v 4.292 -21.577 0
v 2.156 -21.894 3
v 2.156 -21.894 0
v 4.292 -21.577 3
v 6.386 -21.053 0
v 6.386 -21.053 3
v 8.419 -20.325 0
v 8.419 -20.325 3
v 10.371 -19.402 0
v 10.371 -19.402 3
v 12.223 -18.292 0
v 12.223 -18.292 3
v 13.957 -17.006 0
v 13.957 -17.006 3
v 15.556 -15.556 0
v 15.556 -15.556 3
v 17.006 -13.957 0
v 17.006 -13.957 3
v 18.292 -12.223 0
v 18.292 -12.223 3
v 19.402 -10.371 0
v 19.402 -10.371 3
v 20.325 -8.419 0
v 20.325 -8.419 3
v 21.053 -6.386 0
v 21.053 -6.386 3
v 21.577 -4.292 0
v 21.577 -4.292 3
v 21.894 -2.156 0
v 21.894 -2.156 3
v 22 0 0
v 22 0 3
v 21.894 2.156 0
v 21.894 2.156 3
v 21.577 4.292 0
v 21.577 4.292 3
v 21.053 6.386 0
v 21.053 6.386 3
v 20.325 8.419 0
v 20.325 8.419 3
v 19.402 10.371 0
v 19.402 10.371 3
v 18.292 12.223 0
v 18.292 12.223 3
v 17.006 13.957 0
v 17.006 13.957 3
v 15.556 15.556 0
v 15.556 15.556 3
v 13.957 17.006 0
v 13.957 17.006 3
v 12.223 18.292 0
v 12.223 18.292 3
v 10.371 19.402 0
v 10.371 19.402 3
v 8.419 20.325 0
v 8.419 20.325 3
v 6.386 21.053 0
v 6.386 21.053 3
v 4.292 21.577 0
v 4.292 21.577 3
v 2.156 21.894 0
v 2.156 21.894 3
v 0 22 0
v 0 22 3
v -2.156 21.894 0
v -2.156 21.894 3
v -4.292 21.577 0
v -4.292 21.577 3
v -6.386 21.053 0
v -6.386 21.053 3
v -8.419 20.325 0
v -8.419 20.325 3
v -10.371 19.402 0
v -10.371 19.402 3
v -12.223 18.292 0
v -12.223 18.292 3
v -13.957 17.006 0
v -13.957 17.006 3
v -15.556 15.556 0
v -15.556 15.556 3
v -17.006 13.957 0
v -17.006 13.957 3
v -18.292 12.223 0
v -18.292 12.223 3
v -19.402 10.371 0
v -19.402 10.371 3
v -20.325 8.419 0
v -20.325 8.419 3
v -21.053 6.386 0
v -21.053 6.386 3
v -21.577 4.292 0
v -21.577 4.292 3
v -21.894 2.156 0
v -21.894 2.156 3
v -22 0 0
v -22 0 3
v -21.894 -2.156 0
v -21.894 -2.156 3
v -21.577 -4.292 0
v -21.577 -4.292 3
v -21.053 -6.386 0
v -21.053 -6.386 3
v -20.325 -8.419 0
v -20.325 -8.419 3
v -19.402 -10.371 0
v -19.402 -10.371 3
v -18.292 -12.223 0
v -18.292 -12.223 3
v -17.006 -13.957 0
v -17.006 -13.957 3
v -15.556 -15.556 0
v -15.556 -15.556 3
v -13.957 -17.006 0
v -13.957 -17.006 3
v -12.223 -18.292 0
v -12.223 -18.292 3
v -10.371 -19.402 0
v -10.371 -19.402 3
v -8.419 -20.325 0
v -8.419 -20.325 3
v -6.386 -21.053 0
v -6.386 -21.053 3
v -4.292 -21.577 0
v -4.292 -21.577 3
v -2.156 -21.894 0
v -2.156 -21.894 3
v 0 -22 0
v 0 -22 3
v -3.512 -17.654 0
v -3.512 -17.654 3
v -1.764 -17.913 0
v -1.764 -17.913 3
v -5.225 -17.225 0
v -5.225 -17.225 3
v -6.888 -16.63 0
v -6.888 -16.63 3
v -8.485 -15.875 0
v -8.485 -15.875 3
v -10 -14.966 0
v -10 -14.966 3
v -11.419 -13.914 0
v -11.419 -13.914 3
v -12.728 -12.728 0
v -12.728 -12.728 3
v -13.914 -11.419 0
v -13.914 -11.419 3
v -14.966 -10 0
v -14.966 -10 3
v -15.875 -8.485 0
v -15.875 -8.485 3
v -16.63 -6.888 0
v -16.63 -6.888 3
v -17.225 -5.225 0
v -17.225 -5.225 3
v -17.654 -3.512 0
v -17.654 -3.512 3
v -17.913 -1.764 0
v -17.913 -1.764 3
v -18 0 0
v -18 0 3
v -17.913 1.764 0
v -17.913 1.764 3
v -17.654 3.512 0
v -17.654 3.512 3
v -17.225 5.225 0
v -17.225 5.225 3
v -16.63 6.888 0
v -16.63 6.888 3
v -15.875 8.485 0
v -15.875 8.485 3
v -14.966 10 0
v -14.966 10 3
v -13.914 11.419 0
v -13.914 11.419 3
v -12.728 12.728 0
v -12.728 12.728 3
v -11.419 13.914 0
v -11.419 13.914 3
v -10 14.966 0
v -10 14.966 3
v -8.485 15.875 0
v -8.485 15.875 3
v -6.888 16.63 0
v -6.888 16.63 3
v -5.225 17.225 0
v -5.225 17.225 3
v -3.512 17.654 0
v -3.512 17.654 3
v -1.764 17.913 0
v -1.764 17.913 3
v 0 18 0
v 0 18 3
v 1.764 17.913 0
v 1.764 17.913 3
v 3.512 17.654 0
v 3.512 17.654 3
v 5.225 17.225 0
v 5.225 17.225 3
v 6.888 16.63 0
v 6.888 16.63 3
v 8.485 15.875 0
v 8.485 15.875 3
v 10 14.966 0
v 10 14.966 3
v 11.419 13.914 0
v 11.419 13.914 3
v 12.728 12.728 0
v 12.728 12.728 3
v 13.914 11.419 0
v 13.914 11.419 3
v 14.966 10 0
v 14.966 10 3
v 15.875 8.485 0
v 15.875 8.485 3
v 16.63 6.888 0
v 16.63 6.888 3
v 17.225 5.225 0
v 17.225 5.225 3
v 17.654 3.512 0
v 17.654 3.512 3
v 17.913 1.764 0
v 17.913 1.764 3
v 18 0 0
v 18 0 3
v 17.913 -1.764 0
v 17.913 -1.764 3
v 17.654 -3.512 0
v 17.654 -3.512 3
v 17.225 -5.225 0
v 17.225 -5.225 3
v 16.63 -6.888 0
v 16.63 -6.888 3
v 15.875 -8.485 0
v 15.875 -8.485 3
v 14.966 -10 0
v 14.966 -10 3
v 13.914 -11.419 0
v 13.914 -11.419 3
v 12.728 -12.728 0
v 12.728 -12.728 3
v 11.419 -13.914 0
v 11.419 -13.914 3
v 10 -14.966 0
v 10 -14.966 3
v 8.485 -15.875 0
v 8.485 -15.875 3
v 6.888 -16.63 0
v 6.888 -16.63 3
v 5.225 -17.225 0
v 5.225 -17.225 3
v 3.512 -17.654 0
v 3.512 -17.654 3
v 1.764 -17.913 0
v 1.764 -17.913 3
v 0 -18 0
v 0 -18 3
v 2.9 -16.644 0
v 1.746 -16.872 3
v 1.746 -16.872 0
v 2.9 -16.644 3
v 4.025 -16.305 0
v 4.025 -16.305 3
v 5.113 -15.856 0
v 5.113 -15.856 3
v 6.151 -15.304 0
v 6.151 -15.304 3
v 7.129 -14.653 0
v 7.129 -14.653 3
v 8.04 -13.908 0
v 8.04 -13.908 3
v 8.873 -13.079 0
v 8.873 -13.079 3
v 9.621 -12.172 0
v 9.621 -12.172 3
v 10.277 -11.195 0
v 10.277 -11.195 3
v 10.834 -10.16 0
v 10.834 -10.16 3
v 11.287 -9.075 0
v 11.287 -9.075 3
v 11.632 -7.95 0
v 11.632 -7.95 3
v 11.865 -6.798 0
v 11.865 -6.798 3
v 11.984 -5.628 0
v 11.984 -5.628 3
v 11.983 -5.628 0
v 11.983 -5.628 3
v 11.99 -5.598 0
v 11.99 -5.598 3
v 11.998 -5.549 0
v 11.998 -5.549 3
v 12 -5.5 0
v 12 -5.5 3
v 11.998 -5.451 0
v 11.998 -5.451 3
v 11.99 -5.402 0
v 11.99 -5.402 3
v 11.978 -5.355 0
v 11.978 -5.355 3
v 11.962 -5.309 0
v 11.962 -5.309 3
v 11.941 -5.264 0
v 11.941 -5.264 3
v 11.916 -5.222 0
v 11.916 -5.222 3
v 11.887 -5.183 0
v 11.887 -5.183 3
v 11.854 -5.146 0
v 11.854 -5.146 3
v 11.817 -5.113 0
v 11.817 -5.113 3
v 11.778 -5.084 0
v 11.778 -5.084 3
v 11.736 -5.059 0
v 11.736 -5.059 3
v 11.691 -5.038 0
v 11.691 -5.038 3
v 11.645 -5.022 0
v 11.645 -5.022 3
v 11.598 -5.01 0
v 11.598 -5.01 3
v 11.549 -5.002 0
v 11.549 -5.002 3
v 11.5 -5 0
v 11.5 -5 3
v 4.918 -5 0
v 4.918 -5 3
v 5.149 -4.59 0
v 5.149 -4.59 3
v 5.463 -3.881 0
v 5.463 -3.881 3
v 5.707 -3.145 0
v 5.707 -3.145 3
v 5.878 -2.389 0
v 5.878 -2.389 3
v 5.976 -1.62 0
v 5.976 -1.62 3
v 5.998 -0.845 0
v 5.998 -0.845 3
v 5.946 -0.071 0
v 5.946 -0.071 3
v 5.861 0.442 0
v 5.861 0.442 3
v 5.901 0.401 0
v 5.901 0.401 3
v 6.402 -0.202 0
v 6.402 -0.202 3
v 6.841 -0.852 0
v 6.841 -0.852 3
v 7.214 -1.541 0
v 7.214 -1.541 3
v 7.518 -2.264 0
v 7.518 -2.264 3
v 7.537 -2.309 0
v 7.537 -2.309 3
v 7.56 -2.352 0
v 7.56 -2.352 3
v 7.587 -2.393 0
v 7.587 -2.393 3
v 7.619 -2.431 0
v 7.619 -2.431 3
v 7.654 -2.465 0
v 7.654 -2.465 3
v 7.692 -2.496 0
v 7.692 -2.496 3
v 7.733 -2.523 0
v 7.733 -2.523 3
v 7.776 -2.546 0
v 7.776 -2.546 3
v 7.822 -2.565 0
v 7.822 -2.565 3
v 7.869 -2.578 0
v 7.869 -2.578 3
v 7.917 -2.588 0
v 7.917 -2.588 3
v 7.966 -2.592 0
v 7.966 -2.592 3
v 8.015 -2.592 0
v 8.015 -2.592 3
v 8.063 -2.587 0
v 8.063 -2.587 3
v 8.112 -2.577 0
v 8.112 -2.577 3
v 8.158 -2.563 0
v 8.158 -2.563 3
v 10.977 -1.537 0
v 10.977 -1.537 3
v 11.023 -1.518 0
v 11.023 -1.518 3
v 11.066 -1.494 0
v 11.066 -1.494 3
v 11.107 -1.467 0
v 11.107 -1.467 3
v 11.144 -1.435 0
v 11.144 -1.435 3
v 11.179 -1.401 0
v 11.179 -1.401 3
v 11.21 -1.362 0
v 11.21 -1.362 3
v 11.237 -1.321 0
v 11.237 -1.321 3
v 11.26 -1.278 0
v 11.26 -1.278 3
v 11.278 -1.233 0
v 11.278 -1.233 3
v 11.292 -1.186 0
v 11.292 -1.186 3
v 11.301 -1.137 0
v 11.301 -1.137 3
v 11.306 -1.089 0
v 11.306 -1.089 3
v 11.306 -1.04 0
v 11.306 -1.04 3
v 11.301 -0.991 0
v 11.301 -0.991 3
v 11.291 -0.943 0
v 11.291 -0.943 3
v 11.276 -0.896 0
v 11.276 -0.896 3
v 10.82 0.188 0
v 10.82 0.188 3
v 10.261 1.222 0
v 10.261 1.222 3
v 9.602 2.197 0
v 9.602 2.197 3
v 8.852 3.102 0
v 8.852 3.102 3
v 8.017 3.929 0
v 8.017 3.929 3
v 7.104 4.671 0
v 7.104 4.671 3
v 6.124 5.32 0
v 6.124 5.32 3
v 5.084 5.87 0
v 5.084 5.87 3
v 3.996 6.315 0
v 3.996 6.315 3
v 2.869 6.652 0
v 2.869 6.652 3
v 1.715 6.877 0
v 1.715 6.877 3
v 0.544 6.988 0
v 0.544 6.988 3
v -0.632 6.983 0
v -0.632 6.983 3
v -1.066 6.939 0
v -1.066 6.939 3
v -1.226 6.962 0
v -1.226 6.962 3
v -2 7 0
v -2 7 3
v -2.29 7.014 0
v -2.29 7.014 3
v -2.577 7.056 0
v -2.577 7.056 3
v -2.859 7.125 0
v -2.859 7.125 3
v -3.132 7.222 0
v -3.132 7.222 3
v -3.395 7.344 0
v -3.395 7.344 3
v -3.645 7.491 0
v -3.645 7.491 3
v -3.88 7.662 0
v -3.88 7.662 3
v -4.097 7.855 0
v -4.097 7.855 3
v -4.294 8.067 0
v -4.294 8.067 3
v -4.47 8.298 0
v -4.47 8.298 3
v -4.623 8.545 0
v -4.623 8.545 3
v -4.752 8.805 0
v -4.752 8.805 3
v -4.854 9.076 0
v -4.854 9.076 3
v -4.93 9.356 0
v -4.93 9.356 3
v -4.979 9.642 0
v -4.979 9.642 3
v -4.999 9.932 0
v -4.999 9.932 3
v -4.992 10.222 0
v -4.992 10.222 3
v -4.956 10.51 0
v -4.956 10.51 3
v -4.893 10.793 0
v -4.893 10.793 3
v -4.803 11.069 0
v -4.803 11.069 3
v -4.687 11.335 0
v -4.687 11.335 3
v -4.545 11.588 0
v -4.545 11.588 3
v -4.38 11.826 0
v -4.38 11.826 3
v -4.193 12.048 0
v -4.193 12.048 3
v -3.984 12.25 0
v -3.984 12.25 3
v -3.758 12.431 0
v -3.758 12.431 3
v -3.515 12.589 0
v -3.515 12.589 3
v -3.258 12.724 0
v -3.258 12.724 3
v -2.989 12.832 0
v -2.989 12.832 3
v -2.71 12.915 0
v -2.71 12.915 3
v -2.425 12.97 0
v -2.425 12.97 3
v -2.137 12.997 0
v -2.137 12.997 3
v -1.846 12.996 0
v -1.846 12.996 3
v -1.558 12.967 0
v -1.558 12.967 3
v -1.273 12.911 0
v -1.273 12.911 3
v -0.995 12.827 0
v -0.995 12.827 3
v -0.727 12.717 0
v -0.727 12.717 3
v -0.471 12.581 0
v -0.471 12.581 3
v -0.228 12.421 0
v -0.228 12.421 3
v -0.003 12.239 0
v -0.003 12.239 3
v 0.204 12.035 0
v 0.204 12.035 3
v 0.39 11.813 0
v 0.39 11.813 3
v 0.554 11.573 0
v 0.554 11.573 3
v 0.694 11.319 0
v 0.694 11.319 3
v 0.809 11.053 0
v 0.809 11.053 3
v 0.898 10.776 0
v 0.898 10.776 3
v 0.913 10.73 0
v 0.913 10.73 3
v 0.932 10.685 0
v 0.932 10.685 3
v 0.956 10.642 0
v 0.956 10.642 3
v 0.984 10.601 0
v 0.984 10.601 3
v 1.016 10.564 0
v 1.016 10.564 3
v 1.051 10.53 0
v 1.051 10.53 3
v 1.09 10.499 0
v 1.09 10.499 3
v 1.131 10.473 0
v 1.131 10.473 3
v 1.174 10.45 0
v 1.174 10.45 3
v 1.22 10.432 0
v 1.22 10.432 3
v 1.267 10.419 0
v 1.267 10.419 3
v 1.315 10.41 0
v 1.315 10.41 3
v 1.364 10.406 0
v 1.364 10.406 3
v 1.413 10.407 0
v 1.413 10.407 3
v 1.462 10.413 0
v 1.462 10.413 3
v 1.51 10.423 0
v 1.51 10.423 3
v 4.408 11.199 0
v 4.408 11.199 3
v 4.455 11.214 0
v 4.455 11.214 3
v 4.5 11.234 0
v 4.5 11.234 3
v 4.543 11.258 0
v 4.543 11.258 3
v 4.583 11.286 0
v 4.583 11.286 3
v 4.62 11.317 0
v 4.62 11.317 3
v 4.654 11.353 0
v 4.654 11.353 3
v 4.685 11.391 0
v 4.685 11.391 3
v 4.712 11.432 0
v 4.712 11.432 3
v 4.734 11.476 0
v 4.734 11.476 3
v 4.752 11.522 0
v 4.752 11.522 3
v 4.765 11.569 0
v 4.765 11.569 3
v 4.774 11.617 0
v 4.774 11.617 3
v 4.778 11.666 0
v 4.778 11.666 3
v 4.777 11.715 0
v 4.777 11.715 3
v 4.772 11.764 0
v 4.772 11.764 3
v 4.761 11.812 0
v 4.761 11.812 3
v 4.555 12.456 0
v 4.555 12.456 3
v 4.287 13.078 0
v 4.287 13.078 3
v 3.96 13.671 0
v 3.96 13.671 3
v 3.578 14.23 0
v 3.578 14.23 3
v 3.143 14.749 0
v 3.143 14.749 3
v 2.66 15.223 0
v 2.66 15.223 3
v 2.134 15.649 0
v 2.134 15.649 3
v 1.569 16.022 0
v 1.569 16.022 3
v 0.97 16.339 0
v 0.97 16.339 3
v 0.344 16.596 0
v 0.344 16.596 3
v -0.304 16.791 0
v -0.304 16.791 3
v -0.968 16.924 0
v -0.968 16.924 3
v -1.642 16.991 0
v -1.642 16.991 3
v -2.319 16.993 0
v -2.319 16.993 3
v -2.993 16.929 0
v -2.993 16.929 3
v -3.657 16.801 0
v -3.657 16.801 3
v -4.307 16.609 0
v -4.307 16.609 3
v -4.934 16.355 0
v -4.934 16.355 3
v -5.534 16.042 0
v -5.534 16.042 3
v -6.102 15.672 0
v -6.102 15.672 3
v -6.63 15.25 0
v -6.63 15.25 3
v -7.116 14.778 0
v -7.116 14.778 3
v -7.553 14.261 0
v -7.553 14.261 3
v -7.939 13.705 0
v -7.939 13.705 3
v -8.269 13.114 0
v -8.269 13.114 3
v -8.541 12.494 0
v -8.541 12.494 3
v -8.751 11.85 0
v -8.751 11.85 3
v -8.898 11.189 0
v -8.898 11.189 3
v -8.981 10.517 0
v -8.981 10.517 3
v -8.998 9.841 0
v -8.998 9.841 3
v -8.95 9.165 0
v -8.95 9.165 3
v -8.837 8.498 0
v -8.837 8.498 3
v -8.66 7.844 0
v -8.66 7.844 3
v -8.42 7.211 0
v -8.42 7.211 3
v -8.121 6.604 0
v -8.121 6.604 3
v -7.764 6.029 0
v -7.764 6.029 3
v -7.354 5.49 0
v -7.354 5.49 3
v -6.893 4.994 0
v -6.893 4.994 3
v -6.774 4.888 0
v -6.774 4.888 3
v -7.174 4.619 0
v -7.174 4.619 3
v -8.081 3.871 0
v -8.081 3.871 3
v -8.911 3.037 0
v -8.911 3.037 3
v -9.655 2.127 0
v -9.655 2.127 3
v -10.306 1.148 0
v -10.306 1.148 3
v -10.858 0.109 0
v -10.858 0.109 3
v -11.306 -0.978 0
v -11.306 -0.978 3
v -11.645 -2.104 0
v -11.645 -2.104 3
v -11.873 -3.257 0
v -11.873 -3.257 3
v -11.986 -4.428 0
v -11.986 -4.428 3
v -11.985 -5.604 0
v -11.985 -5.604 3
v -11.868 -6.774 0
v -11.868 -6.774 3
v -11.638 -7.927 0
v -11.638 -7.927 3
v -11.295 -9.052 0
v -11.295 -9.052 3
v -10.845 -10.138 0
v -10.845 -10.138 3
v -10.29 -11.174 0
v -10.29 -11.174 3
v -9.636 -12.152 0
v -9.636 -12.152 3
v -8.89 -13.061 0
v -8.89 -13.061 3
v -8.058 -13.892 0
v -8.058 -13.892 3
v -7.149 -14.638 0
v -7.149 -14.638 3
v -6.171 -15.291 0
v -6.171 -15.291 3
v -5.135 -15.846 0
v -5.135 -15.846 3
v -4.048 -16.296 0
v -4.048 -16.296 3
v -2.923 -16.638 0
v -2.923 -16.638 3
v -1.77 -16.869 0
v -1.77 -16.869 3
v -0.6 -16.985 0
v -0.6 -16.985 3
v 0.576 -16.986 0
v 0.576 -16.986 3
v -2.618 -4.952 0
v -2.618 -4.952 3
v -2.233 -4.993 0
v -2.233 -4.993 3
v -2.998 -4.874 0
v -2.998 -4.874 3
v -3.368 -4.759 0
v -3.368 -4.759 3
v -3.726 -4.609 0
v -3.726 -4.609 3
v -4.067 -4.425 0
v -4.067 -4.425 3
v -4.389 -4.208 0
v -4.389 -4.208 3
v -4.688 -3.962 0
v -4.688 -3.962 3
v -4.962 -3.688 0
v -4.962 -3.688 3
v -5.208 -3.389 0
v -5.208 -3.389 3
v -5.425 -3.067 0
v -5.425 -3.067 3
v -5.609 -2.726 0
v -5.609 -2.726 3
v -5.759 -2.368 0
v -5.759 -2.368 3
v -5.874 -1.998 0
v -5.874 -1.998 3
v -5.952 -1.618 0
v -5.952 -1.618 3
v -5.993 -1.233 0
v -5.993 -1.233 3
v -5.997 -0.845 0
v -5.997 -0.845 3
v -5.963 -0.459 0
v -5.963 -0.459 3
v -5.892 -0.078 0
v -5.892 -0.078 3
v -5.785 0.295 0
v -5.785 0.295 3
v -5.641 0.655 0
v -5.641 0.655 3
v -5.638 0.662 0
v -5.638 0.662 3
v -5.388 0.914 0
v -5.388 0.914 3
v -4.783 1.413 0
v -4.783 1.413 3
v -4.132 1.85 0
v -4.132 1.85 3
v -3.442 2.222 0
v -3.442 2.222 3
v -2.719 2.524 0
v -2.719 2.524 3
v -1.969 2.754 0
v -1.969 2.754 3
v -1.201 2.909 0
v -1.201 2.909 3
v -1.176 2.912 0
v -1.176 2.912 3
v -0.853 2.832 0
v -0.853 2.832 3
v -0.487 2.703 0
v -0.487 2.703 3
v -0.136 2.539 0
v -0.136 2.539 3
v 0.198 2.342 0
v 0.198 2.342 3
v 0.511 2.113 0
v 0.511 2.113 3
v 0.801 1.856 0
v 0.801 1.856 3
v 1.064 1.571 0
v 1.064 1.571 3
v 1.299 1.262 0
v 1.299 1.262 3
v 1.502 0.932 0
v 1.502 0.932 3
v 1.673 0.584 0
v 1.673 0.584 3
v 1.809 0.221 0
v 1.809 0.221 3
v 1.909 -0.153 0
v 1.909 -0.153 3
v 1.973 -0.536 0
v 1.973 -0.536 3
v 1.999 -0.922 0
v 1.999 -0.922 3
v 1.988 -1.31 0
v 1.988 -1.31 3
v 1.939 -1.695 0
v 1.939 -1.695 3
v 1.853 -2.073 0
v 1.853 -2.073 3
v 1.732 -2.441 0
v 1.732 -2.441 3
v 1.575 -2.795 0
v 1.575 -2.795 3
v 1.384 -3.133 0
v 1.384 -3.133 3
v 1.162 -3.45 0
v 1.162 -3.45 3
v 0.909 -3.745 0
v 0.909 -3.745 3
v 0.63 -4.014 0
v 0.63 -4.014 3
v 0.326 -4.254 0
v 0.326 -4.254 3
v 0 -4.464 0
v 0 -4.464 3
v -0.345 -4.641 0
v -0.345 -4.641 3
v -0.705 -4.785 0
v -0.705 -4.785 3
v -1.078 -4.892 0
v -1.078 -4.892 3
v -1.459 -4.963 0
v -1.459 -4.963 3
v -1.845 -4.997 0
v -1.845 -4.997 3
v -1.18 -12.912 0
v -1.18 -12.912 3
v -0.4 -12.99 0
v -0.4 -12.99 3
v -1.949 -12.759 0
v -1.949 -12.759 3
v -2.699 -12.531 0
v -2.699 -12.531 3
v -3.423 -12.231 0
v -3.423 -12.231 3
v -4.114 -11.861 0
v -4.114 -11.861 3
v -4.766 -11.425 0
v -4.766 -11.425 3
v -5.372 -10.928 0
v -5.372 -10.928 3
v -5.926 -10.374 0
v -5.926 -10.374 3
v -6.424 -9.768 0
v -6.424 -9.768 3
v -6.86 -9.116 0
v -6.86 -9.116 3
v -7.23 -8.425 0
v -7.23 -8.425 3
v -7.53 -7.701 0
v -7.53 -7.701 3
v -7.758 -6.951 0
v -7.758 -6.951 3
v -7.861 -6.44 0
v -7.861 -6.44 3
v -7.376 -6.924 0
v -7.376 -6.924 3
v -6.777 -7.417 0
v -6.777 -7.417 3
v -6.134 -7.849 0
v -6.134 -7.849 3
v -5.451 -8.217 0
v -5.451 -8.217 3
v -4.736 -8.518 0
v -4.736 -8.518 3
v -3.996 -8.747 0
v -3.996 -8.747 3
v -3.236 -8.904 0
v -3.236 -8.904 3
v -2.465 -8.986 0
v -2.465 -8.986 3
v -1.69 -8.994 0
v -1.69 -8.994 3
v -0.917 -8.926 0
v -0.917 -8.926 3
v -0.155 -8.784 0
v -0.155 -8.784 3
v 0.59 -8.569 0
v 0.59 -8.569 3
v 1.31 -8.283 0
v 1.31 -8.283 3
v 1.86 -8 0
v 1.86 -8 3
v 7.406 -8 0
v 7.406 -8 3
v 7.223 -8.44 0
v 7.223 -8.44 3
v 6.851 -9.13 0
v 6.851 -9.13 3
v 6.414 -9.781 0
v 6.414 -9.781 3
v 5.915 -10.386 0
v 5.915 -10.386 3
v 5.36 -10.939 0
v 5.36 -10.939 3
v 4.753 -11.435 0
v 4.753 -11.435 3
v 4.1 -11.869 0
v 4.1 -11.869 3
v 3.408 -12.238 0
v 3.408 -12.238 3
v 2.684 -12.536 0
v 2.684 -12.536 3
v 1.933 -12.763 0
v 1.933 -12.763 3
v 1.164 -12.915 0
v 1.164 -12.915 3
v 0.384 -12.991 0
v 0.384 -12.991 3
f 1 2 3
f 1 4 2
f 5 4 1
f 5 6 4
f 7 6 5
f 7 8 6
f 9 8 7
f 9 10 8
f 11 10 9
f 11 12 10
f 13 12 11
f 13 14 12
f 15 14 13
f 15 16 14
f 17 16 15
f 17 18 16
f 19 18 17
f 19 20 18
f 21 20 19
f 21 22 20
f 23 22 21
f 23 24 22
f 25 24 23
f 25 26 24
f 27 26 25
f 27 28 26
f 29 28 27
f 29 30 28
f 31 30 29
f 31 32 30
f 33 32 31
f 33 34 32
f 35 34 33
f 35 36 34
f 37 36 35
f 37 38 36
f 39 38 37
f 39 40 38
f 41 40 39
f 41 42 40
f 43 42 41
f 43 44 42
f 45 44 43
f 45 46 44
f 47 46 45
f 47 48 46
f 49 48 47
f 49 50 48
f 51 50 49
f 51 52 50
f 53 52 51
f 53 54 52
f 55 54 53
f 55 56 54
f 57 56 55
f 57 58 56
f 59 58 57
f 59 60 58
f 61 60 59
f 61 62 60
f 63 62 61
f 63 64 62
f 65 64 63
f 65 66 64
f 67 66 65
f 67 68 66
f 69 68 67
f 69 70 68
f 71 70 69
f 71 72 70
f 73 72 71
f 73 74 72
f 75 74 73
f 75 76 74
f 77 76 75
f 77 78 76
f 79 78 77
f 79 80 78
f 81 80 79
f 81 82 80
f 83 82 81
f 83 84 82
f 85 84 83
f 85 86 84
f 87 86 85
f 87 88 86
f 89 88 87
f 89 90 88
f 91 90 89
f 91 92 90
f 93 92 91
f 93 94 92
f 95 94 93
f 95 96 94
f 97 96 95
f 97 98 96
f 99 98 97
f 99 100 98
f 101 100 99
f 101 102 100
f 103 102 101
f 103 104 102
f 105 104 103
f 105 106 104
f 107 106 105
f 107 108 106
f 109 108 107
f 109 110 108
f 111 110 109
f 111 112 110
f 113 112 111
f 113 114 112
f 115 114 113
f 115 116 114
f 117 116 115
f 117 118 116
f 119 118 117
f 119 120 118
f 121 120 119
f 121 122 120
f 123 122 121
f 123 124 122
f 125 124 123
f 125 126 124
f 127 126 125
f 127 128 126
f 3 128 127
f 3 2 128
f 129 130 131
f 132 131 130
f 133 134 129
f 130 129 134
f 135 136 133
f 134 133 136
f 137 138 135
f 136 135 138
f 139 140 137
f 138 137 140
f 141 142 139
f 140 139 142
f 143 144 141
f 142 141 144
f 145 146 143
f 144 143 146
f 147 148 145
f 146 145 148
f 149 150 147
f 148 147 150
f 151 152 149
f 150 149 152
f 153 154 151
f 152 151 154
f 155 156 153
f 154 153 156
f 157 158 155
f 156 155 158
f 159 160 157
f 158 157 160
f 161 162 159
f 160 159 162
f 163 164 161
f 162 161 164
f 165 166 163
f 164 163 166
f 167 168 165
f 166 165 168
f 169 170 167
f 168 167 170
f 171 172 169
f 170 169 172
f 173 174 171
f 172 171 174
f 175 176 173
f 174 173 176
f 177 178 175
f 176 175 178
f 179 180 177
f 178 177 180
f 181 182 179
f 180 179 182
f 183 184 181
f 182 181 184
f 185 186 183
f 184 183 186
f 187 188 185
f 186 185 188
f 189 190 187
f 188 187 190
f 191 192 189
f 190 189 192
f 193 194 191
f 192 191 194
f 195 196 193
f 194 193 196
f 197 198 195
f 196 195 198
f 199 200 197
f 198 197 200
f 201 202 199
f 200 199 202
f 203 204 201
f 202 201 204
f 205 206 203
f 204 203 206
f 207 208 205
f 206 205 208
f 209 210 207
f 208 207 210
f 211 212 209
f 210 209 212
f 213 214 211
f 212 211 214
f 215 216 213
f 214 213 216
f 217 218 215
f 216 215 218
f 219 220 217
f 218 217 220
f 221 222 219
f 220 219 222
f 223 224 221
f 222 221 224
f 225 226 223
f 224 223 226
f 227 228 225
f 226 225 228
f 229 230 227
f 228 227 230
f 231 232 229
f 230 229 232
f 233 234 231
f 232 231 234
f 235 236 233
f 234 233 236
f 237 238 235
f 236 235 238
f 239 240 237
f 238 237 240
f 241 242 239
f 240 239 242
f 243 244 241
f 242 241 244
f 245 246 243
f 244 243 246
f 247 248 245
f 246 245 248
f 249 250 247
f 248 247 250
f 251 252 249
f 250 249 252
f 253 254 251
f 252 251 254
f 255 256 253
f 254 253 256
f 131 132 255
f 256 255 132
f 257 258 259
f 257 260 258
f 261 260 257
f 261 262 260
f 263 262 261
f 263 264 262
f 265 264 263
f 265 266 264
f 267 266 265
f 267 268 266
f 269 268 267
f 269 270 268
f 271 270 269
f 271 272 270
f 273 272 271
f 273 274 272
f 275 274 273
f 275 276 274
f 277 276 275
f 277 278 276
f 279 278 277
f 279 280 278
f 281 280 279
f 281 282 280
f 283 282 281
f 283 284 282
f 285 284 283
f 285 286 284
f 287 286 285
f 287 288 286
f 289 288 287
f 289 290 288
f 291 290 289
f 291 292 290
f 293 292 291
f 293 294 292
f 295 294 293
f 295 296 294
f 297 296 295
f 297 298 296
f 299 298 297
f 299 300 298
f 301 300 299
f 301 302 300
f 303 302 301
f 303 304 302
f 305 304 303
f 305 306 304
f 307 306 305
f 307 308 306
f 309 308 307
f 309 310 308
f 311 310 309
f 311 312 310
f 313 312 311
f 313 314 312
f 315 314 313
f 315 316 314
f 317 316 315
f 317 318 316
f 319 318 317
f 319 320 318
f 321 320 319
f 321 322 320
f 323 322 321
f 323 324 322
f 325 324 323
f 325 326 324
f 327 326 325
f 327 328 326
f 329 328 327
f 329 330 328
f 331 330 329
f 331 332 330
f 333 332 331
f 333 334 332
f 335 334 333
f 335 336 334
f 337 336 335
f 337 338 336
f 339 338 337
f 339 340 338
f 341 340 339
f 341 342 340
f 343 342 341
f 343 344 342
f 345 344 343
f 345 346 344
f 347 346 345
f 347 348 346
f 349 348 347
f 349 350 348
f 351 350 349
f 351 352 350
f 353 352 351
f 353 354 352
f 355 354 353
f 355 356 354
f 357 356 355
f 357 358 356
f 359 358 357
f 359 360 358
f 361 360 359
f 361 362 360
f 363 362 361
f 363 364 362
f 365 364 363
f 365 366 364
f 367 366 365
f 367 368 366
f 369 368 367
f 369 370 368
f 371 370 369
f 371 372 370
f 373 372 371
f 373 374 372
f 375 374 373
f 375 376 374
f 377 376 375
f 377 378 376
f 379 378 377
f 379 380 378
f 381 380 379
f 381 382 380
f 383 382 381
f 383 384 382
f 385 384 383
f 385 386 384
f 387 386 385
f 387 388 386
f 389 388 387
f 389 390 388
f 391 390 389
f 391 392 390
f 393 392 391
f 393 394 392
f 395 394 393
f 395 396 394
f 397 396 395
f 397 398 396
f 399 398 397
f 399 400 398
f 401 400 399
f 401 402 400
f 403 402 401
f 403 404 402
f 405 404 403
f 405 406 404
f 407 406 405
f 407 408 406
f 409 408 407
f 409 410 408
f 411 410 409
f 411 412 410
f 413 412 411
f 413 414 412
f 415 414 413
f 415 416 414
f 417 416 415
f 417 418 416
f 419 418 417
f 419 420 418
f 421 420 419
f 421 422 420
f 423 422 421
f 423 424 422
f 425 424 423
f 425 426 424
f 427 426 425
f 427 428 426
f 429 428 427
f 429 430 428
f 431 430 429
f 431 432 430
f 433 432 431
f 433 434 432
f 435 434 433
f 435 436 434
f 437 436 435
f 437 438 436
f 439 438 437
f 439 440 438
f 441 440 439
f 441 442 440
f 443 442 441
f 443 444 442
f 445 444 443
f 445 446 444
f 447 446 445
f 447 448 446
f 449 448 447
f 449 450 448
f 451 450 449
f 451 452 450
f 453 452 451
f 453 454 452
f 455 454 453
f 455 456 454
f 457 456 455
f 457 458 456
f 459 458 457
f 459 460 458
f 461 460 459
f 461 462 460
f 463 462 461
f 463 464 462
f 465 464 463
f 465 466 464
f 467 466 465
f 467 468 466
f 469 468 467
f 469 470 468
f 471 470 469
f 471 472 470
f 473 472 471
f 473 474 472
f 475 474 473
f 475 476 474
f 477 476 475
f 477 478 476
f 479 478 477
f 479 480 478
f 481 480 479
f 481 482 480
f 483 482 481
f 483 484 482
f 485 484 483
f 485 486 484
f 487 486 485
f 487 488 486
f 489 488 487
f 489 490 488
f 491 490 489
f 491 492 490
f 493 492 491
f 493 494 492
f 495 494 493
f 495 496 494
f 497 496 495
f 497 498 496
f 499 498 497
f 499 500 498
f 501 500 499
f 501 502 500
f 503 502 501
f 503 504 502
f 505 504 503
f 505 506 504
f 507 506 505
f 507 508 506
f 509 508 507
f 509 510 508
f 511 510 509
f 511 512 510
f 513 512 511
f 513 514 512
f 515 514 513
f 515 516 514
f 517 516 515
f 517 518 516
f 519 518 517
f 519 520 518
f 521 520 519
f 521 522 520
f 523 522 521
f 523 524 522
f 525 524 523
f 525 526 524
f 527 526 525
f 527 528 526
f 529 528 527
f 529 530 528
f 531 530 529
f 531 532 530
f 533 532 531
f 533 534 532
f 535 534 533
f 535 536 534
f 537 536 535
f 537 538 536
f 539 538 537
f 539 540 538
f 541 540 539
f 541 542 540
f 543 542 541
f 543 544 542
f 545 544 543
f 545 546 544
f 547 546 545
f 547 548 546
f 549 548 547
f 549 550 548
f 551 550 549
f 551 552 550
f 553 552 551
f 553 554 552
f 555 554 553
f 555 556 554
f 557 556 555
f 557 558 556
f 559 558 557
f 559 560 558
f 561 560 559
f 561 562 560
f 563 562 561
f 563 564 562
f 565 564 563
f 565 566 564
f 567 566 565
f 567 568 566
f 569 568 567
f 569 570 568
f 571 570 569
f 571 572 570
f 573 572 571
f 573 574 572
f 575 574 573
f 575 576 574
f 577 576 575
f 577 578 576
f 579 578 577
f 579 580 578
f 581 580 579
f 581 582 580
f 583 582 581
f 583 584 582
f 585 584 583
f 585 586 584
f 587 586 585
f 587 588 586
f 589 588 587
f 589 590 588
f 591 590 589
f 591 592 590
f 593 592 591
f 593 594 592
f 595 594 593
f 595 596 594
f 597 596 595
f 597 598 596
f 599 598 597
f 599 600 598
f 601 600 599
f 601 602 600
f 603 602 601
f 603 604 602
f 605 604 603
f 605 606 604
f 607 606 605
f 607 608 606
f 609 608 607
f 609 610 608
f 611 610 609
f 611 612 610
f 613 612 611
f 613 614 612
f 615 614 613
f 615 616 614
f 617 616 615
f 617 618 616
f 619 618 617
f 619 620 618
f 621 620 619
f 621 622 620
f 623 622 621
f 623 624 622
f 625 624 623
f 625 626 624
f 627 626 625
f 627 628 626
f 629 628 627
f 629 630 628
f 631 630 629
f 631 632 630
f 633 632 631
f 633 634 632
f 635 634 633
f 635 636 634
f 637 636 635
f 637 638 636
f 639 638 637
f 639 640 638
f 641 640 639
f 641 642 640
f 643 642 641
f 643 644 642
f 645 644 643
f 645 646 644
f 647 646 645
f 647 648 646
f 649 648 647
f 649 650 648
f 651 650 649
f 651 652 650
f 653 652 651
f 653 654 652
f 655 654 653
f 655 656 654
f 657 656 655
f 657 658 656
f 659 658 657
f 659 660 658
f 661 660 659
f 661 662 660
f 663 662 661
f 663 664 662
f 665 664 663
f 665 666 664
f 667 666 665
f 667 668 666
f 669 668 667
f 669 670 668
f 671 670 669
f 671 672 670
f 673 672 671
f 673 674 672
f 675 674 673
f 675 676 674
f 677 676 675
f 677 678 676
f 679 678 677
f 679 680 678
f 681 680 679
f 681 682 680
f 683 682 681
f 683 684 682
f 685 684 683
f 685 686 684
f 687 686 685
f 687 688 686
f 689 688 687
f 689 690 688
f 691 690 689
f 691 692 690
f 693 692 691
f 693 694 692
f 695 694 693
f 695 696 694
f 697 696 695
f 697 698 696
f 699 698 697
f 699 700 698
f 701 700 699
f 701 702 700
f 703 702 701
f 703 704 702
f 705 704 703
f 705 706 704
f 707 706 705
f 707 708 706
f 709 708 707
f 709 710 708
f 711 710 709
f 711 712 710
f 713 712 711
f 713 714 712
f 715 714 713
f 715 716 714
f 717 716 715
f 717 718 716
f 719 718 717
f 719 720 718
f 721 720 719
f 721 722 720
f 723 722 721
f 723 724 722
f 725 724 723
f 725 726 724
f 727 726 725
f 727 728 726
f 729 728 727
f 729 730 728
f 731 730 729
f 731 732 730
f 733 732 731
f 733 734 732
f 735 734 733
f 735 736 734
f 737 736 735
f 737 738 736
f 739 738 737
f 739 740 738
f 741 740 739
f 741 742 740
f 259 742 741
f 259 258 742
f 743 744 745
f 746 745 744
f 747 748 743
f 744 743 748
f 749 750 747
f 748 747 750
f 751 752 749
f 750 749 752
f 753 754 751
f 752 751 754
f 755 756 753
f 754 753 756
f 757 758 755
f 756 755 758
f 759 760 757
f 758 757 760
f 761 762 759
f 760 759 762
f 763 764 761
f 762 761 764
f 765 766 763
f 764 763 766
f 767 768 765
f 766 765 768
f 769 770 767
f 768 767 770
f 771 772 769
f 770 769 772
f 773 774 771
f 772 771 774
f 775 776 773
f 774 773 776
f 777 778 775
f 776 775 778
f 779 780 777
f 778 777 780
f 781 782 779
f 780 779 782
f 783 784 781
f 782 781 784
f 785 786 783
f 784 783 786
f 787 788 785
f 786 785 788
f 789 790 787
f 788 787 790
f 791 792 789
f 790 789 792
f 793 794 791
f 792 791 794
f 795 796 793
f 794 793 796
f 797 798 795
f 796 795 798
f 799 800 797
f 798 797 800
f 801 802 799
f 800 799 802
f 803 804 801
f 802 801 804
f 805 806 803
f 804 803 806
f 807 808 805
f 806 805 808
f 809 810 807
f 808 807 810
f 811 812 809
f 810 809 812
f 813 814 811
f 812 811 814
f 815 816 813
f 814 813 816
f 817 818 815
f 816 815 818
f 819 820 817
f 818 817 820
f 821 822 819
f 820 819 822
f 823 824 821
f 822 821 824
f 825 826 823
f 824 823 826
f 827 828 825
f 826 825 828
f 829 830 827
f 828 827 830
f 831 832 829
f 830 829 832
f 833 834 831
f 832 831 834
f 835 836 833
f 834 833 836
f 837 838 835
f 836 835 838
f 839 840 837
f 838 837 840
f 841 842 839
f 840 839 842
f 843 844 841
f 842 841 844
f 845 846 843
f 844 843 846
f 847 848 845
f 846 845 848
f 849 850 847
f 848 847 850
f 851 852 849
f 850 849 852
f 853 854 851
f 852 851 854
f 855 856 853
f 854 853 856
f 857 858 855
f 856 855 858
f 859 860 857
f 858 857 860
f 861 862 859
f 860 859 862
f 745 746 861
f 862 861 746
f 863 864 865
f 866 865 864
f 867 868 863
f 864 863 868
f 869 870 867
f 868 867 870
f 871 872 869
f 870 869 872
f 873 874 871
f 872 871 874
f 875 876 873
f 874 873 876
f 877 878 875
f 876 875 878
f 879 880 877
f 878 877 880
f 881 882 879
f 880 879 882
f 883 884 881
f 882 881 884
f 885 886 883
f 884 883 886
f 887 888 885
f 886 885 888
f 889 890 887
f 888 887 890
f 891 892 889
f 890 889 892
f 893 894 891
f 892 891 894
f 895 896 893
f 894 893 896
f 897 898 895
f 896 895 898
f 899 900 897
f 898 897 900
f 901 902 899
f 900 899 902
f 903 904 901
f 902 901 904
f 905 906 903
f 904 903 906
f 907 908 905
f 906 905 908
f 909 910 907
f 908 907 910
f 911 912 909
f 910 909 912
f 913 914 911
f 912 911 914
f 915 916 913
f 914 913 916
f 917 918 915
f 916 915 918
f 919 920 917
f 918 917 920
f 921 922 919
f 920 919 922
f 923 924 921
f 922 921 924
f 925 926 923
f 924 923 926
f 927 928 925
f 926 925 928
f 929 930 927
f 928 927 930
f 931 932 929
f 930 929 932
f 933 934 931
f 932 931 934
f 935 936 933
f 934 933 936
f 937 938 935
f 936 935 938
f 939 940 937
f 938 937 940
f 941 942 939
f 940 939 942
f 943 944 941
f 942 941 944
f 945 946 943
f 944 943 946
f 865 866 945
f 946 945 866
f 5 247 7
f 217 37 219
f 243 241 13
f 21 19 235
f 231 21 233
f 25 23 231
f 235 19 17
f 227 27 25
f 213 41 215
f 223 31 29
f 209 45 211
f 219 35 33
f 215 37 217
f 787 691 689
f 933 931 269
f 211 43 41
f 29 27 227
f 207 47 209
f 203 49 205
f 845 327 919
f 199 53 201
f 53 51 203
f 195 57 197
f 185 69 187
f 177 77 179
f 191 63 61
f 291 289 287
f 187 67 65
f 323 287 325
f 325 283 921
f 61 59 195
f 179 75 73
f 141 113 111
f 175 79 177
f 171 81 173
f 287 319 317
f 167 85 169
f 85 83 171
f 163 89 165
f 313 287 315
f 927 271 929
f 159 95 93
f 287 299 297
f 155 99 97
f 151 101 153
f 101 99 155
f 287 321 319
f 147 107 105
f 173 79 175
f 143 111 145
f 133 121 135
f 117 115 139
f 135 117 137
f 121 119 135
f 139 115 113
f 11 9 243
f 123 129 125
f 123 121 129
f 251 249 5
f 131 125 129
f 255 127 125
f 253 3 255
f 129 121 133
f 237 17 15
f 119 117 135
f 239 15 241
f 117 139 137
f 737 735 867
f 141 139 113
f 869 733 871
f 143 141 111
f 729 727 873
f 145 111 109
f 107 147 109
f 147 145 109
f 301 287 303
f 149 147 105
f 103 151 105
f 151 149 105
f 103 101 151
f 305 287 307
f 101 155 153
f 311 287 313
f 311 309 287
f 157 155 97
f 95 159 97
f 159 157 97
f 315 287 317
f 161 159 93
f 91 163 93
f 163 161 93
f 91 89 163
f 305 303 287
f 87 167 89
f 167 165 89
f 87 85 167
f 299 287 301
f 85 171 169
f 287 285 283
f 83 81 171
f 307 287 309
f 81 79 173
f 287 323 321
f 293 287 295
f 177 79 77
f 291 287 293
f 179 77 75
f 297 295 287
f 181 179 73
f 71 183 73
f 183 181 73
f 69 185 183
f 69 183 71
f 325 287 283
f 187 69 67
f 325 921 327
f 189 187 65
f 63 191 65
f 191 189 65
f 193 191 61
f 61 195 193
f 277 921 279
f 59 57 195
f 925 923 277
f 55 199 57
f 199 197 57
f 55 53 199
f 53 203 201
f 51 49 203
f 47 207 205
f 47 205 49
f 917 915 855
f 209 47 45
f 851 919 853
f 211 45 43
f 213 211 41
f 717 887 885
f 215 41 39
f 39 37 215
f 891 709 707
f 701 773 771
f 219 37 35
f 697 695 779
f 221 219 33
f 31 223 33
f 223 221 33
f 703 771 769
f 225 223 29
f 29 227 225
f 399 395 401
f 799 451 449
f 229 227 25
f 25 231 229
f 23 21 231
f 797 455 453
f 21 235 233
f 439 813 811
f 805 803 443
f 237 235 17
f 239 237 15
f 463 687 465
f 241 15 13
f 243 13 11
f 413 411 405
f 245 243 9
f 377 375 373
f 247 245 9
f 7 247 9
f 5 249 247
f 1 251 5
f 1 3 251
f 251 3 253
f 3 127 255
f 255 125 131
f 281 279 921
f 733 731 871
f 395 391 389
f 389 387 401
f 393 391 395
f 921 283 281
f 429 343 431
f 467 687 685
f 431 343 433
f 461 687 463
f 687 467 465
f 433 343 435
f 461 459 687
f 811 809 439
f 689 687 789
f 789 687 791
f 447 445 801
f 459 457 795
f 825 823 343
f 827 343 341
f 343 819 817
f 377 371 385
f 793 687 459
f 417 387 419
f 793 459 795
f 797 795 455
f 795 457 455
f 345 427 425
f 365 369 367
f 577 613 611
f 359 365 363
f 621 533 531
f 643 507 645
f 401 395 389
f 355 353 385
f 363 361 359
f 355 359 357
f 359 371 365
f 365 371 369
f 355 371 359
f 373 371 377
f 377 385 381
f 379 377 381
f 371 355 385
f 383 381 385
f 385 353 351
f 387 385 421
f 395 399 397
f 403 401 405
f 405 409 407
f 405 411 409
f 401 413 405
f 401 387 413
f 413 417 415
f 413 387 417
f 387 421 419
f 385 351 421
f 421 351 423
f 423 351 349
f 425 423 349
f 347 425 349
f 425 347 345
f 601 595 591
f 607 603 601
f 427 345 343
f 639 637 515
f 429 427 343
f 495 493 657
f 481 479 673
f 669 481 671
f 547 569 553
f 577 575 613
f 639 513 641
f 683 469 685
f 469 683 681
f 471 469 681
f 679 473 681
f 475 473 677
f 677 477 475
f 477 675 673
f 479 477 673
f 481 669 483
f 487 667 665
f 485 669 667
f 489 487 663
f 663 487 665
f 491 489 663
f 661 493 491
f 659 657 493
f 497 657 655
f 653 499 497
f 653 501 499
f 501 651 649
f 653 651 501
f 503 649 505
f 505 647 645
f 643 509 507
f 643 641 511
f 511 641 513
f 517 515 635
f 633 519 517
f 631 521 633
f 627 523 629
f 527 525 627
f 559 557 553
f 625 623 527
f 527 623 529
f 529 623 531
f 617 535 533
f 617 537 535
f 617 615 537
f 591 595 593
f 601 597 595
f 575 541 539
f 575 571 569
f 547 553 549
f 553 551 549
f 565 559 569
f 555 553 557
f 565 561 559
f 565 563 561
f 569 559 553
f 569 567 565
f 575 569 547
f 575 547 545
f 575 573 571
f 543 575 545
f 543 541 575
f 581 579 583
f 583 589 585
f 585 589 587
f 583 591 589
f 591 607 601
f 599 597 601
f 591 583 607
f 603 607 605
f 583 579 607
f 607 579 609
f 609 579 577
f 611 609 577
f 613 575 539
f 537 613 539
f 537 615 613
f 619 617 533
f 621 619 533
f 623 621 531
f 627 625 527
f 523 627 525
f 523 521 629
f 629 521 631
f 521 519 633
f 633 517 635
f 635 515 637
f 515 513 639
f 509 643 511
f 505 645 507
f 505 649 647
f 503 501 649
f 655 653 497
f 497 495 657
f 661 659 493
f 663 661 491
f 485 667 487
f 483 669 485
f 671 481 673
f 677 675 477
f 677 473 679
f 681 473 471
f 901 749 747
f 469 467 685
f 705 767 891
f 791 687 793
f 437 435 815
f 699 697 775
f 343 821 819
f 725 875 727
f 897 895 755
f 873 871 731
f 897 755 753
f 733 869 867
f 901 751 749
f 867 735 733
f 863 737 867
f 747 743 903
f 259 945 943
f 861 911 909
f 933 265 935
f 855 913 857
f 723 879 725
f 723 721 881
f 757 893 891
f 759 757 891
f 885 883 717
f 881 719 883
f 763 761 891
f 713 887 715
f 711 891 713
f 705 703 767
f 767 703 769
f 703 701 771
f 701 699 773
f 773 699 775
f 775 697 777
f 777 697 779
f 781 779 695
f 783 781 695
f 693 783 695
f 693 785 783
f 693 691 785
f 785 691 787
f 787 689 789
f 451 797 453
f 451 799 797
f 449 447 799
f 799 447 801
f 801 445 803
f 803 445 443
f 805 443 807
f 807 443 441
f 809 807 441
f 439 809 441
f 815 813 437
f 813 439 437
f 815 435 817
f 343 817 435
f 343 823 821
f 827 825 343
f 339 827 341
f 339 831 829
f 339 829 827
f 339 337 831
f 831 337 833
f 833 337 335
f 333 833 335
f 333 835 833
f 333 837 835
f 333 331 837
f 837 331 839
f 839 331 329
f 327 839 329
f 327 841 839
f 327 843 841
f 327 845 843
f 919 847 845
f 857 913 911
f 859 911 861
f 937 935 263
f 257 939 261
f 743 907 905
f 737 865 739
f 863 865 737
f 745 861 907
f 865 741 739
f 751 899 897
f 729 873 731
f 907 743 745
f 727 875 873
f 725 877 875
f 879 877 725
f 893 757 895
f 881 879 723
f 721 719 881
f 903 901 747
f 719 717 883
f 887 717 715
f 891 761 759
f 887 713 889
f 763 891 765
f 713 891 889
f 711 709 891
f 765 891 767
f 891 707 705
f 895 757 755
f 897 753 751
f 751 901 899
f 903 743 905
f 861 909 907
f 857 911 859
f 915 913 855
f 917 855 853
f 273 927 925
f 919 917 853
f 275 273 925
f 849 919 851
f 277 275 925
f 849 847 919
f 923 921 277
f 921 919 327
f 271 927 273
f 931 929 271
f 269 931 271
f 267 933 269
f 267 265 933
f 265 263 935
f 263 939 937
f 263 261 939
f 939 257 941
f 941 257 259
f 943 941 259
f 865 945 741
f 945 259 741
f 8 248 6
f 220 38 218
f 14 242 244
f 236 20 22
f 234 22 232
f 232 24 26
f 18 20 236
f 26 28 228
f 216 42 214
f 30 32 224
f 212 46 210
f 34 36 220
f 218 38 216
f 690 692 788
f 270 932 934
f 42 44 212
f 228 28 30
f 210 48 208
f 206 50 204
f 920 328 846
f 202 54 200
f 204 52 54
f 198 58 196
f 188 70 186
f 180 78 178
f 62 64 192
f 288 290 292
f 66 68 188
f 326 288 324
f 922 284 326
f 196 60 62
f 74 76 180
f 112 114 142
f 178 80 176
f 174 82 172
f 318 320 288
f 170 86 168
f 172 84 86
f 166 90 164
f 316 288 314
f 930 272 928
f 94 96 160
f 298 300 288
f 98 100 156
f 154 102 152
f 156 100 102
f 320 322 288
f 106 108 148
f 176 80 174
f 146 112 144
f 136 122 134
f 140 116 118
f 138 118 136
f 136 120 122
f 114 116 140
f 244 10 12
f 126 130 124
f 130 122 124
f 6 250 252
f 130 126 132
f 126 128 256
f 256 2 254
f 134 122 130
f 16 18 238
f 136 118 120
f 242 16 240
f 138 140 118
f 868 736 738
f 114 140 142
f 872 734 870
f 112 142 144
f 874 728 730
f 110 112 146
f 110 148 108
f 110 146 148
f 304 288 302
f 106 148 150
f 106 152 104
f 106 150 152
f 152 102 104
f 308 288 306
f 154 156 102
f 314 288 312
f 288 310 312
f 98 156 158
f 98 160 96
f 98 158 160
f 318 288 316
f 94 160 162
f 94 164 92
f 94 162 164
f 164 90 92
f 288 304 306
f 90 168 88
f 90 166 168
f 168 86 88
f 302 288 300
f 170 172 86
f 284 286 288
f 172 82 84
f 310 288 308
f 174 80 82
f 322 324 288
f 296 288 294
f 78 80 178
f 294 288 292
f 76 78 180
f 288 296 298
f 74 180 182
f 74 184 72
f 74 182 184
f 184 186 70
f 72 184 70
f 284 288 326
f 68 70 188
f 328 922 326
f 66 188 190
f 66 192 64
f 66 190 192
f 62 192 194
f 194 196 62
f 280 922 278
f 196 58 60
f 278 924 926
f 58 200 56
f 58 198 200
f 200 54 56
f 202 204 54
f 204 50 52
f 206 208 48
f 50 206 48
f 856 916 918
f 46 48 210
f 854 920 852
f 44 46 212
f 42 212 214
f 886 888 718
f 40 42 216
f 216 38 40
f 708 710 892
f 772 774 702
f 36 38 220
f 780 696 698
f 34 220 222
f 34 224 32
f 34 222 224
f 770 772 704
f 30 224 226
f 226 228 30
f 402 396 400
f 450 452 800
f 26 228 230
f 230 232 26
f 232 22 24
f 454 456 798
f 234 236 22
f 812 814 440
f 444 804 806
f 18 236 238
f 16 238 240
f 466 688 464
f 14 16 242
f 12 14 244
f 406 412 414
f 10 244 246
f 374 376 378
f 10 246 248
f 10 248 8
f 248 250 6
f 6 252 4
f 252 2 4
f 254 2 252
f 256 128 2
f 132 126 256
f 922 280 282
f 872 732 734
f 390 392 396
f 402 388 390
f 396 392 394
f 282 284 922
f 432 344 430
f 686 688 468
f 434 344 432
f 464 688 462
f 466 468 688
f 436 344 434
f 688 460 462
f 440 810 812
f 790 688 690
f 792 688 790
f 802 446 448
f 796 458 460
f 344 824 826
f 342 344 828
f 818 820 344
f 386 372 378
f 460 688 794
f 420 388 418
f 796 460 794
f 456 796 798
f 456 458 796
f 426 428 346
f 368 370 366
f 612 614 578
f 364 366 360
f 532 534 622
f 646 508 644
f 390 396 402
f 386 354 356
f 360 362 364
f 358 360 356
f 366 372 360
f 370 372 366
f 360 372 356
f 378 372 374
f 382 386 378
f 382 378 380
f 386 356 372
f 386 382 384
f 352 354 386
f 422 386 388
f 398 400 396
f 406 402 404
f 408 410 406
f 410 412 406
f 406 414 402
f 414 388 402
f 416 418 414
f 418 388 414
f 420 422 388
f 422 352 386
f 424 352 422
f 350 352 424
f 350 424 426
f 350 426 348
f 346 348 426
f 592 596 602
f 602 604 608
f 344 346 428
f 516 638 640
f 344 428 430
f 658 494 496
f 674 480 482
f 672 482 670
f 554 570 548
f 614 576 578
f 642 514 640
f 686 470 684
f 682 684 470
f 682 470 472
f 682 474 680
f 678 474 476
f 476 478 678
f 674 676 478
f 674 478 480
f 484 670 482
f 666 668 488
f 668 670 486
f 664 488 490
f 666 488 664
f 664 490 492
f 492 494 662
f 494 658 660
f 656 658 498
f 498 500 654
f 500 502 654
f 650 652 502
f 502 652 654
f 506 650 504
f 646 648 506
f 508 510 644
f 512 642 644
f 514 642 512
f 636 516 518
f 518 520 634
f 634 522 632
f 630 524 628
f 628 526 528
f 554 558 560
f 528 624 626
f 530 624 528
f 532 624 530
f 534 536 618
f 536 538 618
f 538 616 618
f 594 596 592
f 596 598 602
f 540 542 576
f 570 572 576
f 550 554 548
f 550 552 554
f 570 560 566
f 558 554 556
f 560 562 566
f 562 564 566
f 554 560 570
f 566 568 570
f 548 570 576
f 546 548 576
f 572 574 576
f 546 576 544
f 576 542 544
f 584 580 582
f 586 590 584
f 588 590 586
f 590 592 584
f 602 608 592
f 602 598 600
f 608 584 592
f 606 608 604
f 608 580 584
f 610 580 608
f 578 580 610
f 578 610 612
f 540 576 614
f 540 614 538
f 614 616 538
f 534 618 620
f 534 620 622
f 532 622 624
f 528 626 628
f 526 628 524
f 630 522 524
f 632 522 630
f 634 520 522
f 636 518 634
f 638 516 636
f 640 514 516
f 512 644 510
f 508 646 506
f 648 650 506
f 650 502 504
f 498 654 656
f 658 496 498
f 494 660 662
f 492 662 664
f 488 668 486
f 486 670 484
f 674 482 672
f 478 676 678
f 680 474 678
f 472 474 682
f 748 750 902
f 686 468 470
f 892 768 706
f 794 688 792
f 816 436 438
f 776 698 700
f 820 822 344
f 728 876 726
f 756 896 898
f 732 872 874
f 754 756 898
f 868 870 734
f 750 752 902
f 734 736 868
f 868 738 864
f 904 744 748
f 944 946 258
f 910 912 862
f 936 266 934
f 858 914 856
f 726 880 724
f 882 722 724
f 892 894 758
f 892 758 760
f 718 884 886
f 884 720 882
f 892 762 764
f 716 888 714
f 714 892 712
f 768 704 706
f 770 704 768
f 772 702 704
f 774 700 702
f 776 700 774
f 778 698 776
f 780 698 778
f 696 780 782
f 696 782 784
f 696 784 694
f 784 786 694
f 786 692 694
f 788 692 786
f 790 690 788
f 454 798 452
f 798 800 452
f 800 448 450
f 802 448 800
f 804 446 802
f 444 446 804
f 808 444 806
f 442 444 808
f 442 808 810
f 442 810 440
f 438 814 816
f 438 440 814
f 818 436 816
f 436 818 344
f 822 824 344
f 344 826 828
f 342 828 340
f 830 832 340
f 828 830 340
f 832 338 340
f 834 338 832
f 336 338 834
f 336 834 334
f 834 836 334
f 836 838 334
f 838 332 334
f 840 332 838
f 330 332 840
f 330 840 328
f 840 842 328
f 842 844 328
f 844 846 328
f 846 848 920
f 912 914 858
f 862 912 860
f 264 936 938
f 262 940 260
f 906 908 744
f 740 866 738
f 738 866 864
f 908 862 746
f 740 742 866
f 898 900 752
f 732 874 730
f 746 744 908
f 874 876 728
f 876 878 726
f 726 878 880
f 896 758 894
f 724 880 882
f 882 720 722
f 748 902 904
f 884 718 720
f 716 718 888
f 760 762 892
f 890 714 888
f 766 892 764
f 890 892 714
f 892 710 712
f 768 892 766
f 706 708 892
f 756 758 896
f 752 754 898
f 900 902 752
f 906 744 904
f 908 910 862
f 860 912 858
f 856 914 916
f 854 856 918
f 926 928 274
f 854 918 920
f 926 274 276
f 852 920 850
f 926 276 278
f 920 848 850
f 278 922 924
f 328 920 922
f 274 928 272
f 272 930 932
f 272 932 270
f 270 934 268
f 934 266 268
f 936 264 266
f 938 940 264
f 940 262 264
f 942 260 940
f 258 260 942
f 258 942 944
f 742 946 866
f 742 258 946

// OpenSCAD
// 幅を持つ円弧 (リングセグメント) を描画するモジュール (for comprehension 版 - 角度はすべて度数法で扱う)
module wide_arc_polygon(outer_radius, inner_radius, start_angle, end_angle, fn = $fn) {
    if (inner_radius >= outer_radius) {
        echo("エラー: inner_radius は outer_radius より小さくする必要があります。");
        // return; // OpenSCADでは機能しないので、削除するかコメントアウト
    }
    
    // 角度はすでに度数法で与えられているので、ラジアン変換は不要
    // start_rad = start_angle; // 便宜上の変数名を変更
    // end_rad = end_angle;     // 便宜上の変数名を変更
    
    // 円周上の点の数を計算
    // 角度の差を考慮して、適切なセグメント数を決定します
    angle_range = end_angle - start_angle;
    // num_segments の計算ロジックは以前のものでも問題ありませんが、
    // より直感的に角度の範囲全体に $fn の解像度を適用する形に変更
    num_segments = max(2, ceil(abs(angle_range) / (360 / fn)));
    
    // 外側の円弧の点をリスト内包表記で生成
    outer_points = [ 
        for (i = [0 : num_segments]) 
            let(current_angle_deg = start_angle + angle_range * i / num_segments) // ここも度数法のまま
            [outer_radius * cos(current_angle_deg), outer_radius * sin(current_angle_deg)] 
    ];

    // 内側の円弧の点を逆順でリスト内包表記で生成
    inner_points_reversed = [
        for (i = [0 : num_segments])
            // 角度の計算も度数法のまま、逆順になるように調整
            let(current_angle_deg = start_angle + angle_range * (num_segments - i) / num_segments)
            [inner_radius * cos(current_angle_deg), inner_radius * sin(current_angle_deg)]
    ];

    // これらをconcatで結合
    points = concat(outer_points, inner_points_reversed);
    
    polygon(points);
}

$fn=64;
//translate([0, 0, -1]) color("red") import("senzoku-logo.svg", center=true);

module edge() {
    translate([.5, 0, 0]) {
        hull() {
            circle(.5);
            translate([3, 0, 0]) circle(.5);
        }
    }
}
module senzoku_logo() {
    union() {
        wide_arc_polygon(22, 18, 0, 360);
        translate([0, -5, 0]) {
            wide_arc_polygon(12, 8, 20, 357);
            translate([1, -3, 0]) square([8, 3]);
            rotate([0, 0, 20]) translate([8, 0, 0]) edge();
            translate([8, -.5, 0])  edge();
        }
        translate([-2, 10, 0]) {
                wide_arc_polygon(7, 3, 15, 270);
                rotate([0, 0, 15]) translate([3, 0, 0]) edge();

        }
        translate([-2, -1, 0]) {
                wide_arc_polygon(8, 4, -210, 90);
        }
    }
}

color("green", .3) linear_extrude(3) senzoku_logo();
